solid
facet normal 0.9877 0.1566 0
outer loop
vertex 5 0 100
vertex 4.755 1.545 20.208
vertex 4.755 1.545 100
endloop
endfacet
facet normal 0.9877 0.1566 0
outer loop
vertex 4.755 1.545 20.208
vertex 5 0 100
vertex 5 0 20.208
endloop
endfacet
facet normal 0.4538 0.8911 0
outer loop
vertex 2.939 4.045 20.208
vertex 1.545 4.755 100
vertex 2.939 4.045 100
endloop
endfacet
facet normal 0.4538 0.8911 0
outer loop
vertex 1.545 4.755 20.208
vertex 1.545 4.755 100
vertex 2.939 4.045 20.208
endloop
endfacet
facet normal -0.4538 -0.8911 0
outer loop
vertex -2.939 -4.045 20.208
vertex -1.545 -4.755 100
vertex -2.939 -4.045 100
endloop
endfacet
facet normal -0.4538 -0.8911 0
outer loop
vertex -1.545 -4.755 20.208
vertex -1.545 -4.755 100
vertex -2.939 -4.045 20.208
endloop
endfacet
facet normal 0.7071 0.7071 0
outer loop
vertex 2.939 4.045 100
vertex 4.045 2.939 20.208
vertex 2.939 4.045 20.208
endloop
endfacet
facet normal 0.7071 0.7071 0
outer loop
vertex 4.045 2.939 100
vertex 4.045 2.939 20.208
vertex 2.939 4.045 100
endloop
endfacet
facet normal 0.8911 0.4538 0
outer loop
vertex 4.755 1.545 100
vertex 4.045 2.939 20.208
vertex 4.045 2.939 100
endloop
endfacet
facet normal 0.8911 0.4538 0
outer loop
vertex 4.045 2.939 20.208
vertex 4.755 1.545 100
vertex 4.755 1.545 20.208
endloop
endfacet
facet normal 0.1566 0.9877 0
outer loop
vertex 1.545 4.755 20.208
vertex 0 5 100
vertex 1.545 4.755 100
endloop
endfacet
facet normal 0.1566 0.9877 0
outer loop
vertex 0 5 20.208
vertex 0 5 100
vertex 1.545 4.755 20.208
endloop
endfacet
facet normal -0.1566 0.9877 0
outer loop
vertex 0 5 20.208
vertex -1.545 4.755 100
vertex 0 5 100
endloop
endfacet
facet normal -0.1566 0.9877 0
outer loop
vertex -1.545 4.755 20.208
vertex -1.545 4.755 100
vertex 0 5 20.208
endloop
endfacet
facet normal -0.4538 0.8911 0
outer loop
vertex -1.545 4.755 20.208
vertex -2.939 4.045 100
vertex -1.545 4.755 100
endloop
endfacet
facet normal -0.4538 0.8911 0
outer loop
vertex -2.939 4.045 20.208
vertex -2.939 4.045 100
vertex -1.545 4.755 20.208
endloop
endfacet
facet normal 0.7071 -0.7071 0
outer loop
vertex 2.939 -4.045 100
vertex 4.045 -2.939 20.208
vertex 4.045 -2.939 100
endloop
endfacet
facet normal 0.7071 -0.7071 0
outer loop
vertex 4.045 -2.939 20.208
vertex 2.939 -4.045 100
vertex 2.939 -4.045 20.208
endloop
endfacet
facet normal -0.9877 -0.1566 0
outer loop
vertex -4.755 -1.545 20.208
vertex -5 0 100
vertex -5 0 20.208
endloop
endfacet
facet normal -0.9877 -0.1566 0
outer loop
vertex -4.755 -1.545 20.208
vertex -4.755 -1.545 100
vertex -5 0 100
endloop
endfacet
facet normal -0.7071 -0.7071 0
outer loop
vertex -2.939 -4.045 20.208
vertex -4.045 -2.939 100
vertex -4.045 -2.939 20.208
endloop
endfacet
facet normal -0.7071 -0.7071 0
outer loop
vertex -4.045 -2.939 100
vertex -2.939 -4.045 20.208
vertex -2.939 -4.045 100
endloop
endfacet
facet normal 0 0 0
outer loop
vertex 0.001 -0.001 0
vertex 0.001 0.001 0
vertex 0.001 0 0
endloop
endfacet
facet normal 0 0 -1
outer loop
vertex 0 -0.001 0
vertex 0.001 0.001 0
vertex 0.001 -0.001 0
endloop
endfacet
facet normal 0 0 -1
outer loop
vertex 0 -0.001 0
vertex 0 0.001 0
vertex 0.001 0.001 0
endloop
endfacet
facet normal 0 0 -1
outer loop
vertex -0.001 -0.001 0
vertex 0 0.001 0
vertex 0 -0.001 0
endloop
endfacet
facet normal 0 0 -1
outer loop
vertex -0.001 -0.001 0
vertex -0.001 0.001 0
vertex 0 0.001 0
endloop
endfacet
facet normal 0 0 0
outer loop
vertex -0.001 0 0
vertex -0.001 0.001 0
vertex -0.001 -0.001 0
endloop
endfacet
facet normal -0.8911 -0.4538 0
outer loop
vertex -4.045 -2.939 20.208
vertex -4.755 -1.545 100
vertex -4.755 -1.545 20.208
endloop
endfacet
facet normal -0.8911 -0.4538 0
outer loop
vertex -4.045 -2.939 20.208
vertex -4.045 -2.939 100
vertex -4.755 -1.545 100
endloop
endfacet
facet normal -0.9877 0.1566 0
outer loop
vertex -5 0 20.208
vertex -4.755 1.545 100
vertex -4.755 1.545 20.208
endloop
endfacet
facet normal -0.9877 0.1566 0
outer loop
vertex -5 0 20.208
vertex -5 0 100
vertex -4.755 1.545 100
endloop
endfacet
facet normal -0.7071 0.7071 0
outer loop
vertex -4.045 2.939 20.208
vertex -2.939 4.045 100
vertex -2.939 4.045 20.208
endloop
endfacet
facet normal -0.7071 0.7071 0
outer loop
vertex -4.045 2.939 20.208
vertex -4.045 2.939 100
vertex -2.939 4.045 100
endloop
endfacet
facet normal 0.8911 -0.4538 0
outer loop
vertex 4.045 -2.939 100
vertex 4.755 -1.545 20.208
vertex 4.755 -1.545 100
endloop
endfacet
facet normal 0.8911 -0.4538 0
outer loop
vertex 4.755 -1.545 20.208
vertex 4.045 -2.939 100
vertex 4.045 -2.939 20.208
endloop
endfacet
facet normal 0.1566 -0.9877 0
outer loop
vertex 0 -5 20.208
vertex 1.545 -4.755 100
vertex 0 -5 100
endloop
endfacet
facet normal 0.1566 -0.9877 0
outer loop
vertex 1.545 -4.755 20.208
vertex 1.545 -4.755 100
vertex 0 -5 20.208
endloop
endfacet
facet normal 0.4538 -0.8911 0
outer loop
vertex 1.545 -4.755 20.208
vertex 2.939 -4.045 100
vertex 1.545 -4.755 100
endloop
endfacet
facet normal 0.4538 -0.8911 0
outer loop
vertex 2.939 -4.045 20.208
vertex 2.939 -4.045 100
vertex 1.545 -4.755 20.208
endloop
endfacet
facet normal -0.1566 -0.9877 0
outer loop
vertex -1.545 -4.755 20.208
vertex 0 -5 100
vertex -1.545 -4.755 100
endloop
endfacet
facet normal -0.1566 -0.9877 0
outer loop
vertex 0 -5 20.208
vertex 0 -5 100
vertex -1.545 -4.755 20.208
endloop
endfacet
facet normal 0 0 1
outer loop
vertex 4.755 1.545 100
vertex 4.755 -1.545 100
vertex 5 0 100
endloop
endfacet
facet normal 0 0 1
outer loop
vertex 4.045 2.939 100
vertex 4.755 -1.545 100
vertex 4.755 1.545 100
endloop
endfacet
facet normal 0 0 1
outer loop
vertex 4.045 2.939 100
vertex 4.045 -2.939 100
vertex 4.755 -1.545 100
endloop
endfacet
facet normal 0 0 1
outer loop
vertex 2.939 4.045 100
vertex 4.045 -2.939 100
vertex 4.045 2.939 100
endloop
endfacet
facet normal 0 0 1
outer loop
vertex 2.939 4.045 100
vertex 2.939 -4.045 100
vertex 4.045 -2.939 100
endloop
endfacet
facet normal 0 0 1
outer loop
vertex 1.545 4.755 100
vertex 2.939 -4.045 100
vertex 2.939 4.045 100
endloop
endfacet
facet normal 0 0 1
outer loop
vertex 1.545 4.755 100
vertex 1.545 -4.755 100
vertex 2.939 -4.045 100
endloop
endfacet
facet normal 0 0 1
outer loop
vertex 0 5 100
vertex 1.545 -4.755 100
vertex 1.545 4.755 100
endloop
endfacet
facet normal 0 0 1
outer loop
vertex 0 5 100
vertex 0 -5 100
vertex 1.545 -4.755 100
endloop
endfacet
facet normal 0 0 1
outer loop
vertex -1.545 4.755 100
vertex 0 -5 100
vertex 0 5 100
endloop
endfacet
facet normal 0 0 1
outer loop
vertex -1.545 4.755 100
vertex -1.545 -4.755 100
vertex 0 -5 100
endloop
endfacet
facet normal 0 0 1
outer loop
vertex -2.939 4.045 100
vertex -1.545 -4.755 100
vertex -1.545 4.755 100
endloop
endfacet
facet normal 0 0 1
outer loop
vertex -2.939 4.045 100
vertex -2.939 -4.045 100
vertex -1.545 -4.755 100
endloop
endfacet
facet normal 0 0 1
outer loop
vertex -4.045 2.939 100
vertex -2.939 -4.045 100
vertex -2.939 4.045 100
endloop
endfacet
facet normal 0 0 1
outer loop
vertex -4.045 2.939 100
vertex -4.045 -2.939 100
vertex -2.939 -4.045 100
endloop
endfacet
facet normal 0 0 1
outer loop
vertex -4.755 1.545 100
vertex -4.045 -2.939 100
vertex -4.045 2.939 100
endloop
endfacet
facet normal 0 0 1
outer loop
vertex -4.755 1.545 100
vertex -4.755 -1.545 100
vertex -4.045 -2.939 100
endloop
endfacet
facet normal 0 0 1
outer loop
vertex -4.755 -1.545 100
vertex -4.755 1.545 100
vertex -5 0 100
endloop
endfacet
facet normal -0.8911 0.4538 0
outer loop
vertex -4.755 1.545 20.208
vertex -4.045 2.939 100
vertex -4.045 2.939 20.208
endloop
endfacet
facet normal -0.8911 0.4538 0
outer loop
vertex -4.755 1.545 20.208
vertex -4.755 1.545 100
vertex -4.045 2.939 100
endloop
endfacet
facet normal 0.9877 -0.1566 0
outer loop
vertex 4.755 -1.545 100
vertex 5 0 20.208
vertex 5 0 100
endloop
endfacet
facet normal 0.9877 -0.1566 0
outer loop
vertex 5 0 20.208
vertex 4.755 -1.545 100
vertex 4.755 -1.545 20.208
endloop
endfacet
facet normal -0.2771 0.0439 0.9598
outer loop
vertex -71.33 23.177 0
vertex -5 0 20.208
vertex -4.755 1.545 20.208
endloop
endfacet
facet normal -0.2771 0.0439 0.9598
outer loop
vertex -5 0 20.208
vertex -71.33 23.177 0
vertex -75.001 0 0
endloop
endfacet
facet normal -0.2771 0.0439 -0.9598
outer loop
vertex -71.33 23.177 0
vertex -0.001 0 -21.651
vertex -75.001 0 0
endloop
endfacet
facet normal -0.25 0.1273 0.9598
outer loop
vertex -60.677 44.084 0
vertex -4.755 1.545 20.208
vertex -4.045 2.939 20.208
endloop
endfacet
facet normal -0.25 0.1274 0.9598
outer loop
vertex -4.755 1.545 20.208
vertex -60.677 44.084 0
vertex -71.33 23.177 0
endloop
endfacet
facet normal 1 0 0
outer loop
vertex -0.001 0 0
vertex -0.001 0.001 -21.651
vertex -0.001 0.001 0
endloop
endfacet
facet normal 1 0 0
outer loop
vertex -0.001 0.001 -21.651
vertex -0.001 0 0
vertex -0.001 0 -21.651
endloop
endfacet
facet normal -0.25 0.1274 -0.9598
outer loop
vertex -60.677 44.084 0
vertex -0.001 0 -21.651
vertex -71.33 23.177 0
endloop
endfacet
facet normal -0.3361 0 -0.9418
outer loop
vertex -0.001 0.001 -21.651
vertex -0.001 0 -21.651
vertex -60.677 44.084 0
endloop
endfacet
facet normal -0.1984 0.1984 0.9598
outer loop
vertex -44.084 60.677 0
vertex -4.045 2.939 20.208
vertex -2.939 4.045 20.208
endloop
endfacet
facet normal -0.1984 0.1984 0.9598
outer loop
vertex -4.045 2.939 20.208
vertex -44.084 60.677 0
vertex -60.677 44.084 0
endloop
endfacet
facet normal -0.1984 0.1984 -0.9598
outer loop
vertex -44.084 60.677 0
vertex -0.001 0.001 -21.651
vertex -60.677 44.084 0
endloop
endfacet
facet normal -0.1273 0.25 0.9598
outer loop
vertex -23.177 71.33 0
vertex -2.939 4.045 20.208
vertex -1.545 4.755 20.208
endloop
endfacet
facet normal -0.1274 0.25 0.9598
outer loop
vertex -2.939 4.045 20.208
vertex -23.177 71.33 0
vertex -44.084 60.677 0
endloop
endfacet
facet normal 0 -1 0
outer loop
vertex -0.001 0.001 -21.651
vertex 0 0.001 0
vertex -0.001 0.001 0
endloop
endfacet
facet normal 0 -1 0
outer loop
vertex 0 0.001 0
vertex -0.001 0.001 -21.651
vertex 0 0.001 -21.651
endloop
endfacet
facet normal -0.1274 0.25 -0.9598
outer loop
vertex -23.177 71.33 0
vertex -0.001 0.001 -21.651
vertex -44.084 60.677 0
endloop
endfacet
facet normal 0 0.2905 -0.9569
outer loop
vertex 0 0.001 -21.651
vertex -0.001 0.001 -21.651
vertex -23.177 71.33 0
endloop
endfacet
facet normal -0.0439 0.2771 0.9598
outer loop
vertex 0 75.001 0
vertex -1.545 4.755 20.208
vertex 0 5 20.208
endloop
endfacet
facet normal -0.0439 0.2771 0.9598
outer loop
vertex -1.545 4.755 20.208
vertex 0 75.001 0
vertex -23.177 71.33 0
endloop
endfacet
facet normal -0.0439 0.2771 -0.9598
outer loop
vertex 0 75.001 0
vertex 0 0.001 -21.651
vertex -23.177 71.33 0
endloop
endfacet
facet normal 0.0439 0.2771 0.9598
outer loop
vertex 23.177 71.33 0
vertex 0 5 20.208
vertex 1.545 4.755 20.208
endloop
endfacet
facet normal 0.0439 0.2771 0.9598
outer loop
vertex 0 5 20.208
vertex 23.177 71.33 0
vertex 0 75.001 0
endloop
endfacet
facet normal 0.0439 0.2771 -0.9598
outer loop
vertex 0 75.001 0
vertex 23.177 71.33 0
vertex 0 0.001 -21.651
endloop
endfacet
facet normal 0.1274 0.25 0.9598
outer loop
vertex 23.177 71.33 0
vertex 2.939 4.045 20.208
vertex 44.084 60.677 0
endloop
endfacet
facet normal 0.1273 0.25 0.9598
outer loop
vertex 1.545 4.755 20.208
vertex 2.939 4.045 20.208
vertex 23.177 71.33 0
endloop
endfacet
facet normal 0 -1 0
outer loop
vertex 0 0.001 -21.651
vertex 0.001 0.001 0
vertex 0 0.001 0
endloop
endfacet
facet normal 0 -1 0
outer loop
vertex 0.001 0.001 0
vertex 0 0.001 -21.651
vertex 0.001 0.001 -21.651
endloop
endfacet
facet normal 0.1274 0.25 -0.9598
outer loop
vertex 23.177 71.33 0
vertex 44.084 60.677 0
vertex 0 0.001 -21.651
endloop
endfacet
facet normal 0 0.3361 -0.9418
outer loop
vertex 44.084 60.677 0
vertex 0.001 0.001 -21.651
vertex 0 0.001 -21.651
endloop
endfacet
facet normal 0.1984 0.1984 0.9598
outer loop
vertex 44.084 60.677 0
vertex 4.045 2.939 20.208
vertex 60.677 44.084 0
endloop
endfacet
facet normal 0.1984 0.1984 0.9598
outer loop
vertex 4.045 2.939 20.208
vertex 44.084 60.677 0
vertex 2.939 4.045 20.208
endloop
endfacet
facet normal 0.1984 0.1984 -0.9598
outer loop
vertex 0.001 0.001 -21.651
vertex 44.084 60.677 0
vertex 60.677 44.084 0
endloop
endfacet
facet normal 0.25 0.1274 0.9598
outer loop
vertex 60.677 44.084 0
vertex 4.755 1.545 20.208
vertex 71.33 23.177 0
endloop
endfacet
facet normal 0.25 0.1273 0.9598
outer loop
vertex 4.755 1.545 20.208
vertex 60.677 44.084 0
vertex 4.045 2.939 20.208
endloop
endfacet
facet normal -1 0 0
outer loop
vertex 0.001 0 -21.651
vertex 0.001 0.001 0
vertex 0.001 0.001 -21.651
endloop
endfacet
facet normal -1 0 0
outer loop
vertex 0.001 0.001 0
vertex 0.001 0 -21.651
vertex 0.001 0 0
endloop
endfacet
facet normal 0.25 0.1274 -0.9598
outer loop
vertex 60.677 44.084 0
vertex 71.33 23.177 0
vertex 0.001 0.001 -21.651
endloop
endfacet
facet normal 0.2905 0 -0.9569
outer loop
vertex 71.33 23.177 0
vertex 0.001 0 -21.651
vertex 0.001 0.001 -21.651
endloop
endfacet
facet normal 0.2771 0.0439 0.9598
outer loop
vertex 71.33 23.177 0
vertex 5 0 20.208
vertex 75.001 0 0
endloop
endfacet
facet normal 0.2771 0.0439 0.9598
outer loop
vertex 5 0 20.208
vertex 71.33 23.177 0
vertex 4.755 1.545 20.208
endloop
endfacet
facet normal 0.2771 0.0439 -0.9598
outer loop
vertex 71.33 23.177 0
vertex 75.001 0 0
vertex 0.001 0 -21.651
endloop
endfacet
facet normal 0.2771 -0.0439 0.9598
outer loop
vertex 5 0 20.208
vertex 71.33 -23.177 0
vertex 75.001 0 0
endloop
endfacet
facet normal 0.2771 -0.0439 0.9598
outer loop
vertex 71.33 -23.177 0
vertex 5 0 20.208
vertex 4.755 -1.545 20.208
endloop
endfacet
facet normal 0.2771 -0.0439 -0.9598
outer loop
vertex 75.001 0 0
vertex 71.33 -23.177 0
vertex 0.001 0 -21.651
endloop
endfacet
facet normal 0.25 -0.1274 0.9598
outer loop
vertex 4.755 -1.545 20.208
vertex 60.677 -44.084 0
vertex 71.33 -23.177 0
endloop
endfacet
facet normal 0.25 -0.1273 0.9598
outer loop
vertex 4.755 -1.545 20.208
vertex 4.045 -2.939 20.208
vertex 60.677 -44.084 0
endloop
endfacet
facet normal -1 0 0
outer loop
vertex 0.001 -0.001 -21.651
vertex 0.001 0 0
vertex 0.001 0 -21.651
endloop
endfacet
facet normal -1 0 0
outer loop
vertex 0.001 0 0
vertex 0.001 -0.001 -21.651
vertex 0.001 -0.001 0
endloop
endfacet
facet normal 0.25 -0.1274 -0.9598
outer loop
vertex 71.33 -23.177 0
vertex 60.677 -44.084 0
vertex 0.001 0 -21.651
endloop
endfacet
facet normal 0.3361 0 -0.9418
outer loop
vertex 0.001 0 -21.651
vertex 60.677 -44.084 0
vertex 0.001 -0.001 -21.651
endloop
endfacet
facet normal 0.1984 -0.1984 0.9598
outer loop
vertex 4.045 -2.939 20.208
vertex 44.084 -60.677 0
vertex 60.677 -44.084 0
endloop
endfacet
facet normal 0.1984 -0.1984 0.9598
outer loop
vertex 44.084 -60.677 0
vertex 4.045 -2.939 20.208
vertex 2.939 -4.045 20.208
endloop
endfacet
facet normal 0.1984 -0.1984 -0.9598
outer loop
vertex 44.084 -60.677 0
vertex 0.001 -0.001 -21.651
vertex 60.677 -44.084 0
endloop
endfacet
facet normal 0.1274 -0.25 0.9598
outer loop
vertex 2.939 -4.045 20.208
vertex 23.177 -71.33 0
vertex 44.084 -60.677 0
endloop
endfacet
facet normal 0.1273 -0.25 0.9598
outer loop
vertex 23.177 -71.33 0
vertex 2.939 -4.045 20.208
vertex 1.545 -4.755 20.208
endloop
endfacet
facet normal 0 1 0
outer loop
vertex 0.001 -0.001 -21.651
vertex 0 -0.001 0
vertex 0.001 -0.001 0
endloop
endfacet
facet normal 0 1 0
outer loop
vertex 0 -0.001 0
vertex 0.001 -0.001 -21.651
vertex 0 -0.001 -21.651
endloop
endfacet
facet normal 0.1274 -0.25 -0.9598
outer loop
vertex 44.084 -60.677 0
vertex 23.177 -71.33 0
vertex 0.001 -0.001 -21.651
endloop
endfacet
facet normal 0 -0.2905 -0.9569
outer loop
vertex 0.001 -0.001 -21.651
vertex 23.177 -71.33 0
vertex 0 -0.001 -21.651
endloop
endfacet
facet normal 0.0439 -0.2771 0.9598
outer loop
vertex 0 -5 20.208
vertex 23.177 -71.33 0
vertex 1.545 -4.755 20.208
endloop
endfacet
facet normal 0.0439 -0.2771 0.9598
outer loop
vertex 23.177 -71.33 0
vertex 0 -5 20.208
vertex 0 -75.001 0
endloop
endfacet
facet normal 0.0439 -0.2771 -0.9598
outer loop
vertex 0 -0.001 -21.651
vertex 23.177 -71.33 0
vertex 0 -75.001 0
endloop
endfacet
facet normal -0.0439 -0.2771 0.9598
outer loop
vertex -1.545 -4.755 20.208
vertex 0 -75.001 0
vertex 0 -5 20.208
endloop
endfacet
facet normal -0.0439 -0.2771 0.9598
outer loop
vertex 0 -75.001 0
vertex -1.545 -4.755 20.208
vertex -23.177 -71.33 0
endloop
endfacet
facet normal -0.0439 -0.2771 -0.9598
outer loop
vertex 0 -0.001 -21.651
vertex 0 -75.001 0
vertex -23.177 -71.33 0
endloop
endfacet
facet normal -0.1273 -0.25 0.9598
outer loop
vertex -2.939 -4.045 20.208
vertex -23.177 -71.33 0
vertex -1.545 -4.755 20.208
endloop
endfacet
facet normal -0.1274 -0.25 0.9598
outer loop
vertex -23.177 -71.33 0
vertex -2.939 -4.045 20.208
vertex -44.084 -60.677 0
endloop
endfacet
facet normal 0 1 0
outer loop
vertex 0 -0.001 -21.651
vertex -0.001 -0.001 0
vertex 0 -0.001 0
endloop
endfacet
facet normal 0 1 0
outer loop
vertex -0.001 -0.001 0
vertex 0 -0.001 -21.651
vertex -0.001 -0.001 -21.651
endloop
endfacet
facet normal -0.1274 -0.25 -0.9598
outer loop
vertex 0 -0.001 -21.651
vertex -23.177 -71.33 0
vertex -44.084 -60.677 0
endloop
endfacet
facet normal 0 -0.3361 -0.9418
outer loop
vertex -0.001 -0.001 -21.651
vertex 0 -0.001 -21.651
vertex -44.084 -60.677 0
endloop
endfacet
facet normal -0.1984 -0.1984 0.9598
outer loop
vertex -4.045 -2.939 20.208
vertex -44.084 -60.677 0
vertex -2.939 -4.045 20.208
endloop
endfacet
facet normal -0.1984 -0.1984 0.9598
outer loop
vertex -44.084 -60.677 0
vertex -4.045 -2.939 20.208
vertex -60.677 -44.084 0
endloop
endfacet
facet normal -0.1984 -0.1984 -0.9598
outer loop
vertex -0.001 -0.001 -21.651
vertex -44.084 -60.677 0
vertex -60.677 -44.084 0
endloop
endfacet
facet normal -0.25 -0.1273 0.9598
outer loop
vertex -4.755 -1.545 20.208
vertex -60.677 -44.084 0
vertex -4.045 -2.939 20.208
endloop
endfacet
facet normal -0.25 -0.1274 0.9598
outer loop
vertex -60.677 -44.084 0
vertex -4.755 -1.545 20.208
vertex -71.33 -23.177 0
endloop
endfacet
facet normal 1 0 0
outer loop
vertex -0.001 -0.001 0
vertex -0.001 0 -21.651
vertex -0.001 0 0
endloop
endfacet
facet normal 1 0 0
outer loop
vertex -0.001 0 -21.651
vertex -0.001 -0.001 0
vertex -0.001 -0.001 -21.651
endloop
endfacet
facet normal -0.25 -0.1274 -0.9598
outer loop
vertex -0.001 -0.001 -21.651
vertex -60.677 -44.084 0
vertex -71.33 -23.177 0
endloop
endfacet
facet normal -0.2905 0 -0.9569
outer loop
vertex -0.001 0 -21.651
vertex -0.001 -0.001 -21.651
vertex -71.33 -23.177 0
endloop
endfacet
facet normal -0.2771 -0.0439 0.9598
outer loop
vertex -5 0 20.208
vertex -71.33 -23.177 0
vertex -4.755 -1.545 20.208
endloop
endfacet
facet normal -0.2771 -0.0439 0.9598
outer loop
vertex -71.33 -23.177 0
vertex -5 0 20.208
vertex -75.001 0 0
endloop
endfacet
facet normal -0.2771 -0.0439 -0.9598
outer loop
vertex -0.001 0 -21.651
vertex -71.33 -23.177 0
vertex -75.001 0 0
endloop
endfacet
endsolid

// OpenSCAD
$fn=20;
r=50;
H=100;
R=5;

h=(3*r)/2;
a=(2*h)/sqrt(3);

union() {

    cylinder(H, R, R);

    rotate_extrude()
    scale([1,0.5,1])
    translate([h/3+0.001,0,0])
    circle(r, $fn=3);
    /*
    union() {
        circle(r, $fn=3); 
        translate([0,-a/2,0]) scale([0.05,1,1]) square(a/2);
        translate([h/3,-a/2,0]) scale([0.05,1,1]) square(a/2);
        translate([2*h/3 - 2,-a/2,0]) scale([0.05,1,1]) square(a/2);
    }
    */
}
